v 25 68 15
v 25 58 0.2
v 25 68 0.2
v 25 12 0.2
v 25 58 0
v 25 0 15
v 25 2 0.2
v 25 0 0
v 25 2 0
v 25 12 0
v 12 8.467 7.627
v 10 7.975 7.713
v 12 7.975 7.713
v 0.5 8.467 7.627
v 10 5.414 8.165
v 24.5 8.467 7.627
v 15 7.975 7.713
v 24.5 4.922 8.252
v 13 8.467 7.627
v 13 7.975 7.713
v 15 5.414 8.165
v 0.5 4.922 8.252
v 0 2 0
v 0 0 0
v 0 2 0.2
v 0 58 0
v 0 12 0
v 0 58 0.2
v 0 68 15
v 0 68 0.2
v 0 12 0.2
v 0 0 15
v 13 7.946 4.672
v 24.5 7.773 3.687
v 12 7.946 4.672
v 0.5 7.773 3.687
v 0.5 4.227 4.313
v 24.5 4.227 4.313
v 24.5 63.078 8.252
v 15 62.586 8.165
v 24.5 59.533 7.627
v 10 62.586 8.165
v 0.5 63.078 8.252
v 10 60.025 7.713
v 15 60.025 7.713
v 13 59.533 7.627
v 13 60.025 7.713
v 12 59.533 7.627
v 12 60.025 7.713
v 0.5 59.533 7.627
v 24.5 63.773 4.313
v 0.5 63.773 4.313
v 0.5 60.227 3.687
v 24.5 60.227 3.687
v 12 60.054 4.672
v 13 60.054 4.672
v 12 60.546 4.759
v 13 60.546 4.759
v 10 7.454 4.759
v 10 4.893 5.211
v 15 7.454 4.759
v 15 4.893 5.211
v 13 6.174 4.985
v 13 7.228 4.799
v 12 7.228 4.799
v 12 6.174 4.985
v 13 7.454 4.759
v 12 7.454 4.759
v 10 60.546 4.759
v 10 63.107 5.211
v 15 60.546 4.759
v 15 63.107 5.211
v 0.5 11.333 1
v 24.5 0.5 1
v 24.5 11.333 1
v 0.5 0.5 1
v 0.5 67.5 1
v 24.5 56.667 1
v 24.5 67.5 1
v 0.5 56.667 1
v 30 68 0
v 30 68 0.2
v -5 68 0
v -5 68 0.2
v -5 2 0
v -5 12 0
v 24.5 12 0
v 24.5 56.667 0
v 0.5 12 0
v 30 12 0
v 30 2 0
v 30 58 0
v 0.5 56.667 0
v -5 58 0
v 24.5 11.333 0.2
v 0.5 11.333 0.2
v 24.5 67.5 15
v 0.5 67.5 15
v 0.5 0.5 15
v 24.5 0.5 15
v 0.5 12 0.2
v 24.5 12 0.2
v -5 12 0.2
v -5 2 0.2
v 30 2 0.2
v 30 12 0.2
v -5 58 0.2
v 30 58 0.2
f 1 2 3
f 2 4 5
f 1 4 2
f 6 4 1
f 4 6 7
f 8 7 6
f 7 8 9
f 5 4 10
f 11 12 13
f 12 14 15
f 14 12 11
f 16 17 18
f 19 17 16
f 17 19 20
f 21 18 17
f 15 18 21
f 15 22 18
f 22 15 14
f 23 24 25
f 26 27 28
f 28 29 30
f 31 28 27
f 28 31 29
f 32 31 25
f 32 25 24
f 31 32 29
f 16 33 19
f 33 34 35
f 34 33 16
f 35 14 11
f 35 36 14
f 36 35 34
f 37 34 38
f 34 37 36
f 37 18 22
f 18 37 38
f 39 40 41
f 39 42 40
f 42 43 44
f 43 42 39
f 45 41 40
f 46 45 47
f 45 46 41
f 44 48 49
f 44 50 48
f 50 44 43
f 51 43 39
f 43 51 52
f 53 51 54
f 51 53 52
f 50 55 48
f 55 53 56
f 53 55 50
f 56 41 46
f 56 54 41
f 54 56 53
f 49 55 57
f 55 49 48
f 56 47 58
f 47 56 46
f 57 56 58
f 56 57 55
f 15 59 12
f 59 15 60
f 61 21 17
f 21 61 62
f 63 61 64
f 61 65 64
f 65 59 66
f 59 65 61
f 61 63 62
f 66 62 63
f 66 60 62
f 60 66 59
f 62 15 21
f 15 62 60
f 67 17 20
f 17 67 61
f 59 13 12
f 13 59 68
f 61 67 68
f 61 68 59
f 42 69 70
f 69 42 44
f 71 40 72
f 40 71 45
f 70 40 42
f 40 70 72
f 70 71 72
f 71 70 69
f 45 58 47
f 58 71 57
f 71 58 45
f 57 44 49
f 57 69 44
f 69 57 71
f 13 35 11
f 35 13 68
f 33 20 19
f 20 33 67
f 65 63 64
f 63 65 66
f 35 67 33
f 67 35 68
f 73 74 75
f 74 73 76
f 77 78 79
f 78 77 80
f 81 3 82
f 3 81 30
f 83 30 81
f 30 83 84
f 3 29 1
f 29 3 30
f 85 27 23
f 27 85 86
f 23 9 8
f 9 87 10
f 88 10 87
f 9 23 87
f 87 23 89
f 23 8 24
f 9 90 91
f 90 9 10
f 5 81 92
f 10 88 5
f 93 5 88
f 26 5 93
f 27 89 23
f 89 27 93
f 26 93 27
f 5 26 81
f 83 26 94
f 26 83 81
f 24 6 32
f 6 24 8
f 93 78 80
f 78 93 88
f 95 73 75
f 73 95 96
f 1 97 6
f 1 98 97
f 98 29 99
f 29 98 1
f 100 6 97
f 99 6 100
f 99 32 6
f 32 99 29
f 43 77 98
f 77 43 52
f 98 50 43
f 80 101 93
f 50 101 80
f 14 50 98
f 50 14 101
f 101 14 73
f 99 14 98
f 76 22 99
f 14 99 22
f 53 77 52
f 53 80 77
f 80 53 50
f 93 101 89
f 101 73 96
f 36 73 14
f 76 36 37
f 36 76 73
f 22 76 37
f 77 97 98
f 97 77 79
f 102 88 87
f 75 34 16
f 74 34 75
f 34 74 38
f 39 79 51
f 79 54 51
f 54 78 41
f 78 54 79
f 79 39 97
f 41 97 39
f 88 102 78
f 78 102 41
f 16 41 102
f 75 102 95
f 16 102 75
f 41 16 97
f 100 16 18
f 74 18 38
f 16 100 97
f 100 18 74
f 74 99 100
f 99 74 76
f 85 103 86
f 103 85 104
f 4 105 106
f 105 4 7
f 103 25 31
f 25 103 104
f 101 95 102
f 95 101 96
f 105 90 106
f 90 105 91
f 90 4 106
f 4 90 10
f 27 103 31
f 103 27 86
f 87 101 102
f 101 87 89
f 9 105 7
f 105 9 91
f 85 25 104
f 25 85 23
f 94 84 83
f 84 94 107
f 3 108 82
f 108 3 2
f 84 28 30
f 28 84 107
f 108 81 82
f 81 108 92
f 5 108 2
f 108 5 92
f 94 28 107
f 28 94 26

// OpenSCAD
/* Diffuser Lense For A Particular Project (OpenSCAD) */
tol = 2;

/* Camera Chamber */
camchamberw = 27 - tol;
camchamberh = 70 - tol;

/* LED PCB */
holedia = 16 + 2;
thickness=15;

/* Enclosure hole */
enclosurew = 19;


/* SMD LED */
ledh = 0;
ledw = 4;
ledd = 1.6;

/* SMD LED INSET */
led_mount_inset = 6;
led_mount_angle = -10;
led_mount_tol=1;
led_mount_thickness=1;
led_mount_height = 4;

module led_mount(rotation, w, d, h, offset)
{
  rotate([rotation,0,0])
    union()
    {
      translate([camchamberw/2 - w/2, -d/2, offset])
        cube([w,d,h+4]);
    }
}

module led_mount_wire_slot(rotation, w, d, h, offset)
{
  rotate([rotation,0,0])
    union()
    {
      translate([camchamberw/2 - w/2, -d, offset])
        cube([w,d,h+4]);
      translate([camchamberw/2 - w/2, -d, offset])
        cube([w,d,h+4]);
    }
}
module led_mount_wire_slot_opposite(rotation, w, d, h, offset)
{
  rotate([rotation,0,0])
    union()
    {
      translate([camchamberw/2 - w/2, 0, offset])
        cube([w,d,h+4]);
    }
}

/* Grippers*/
translate([-5,led_mount_inset-4,0])
  cube([camchamberw+10,10, 0.2]);
translate([-5,camchamberh-(led_mount_inset+4),0])
  cube([camchamberw+10,10, 0.2]);

intersection()
{
  union()
  {
    linear_extrude(height = thickness) {
       difference() 
      {
         offset(r = 0) 
         {
          square(size = [camchamberw,camchamberh], center = false);
         }
         offset(r = -0.5) 
         {
          square(size = [camchamberw,camchamberh], center = false);
         }
       }
    }
    
    %difference()
    {
      translate([camchamberw/2,camchamberh/2, 0])
        cylinder(thickness,d=holedia+7);
      translate([camchamberw/2,camchamberh/2,-thickness/2])
        cylinder(thickness*2,d=holedia);
    }
   
    
    // led Holder
    difference()
    {
      union()
      { // Main Body
        // LED Holes
        translate([0,led_mount_inset,led_mount_height])
          led_mount(led_mount_angle,camchamberw,ledd+led_mount_tol+led_mount_thickness,ledh,0);
        translate([0,camchamberh-led_mount_inset,led_mount_height])
          led_mount(-led_mount_angle,camchamberw,ledd+led_mount_tol+led_mount_thickness,ledh,0);
      }

      // LED Holes
      translate([0,led_mount_inset,led_mount_height])
        led_mount(led_mount_angle,ledw+led_mount_tol,ledd+led_mount_tol,ledh, 1);
      translate([0,camchamberh-led_mount_inset,led_mount_height])
        led_mount(-led_mount_angle,ledw+led_mount_tol,ledd+led_mount_tol,ledh, 1);
      
      // LED Wire
      translate([0,led_mount_inset,led_mount_height])
        led_mount_wire_slot_opposite(led_mount_angle,1,ledd+led_mount_tol,ledh, 1);
      translate([0,camchamberh-led_mount_inset,led_mount_height])
        led_mount_wire_slot(-led_mount_angle,1,ledd+led_mount_tol,ledh, 1);
     }
  
    // Base
    difference()
    {
      empty_space = camchamberh*2/3;
      cube([camchamberw,camchamberh, 1]);
      translate([0,camchamberh/2-empty_space/2,-2], center=true)
        cube([camchamberw,empty_space, 4]);  
    }
  }

  /* Remove bottom */
  cube([camchamberw,camchamberh, 1000]);
}
